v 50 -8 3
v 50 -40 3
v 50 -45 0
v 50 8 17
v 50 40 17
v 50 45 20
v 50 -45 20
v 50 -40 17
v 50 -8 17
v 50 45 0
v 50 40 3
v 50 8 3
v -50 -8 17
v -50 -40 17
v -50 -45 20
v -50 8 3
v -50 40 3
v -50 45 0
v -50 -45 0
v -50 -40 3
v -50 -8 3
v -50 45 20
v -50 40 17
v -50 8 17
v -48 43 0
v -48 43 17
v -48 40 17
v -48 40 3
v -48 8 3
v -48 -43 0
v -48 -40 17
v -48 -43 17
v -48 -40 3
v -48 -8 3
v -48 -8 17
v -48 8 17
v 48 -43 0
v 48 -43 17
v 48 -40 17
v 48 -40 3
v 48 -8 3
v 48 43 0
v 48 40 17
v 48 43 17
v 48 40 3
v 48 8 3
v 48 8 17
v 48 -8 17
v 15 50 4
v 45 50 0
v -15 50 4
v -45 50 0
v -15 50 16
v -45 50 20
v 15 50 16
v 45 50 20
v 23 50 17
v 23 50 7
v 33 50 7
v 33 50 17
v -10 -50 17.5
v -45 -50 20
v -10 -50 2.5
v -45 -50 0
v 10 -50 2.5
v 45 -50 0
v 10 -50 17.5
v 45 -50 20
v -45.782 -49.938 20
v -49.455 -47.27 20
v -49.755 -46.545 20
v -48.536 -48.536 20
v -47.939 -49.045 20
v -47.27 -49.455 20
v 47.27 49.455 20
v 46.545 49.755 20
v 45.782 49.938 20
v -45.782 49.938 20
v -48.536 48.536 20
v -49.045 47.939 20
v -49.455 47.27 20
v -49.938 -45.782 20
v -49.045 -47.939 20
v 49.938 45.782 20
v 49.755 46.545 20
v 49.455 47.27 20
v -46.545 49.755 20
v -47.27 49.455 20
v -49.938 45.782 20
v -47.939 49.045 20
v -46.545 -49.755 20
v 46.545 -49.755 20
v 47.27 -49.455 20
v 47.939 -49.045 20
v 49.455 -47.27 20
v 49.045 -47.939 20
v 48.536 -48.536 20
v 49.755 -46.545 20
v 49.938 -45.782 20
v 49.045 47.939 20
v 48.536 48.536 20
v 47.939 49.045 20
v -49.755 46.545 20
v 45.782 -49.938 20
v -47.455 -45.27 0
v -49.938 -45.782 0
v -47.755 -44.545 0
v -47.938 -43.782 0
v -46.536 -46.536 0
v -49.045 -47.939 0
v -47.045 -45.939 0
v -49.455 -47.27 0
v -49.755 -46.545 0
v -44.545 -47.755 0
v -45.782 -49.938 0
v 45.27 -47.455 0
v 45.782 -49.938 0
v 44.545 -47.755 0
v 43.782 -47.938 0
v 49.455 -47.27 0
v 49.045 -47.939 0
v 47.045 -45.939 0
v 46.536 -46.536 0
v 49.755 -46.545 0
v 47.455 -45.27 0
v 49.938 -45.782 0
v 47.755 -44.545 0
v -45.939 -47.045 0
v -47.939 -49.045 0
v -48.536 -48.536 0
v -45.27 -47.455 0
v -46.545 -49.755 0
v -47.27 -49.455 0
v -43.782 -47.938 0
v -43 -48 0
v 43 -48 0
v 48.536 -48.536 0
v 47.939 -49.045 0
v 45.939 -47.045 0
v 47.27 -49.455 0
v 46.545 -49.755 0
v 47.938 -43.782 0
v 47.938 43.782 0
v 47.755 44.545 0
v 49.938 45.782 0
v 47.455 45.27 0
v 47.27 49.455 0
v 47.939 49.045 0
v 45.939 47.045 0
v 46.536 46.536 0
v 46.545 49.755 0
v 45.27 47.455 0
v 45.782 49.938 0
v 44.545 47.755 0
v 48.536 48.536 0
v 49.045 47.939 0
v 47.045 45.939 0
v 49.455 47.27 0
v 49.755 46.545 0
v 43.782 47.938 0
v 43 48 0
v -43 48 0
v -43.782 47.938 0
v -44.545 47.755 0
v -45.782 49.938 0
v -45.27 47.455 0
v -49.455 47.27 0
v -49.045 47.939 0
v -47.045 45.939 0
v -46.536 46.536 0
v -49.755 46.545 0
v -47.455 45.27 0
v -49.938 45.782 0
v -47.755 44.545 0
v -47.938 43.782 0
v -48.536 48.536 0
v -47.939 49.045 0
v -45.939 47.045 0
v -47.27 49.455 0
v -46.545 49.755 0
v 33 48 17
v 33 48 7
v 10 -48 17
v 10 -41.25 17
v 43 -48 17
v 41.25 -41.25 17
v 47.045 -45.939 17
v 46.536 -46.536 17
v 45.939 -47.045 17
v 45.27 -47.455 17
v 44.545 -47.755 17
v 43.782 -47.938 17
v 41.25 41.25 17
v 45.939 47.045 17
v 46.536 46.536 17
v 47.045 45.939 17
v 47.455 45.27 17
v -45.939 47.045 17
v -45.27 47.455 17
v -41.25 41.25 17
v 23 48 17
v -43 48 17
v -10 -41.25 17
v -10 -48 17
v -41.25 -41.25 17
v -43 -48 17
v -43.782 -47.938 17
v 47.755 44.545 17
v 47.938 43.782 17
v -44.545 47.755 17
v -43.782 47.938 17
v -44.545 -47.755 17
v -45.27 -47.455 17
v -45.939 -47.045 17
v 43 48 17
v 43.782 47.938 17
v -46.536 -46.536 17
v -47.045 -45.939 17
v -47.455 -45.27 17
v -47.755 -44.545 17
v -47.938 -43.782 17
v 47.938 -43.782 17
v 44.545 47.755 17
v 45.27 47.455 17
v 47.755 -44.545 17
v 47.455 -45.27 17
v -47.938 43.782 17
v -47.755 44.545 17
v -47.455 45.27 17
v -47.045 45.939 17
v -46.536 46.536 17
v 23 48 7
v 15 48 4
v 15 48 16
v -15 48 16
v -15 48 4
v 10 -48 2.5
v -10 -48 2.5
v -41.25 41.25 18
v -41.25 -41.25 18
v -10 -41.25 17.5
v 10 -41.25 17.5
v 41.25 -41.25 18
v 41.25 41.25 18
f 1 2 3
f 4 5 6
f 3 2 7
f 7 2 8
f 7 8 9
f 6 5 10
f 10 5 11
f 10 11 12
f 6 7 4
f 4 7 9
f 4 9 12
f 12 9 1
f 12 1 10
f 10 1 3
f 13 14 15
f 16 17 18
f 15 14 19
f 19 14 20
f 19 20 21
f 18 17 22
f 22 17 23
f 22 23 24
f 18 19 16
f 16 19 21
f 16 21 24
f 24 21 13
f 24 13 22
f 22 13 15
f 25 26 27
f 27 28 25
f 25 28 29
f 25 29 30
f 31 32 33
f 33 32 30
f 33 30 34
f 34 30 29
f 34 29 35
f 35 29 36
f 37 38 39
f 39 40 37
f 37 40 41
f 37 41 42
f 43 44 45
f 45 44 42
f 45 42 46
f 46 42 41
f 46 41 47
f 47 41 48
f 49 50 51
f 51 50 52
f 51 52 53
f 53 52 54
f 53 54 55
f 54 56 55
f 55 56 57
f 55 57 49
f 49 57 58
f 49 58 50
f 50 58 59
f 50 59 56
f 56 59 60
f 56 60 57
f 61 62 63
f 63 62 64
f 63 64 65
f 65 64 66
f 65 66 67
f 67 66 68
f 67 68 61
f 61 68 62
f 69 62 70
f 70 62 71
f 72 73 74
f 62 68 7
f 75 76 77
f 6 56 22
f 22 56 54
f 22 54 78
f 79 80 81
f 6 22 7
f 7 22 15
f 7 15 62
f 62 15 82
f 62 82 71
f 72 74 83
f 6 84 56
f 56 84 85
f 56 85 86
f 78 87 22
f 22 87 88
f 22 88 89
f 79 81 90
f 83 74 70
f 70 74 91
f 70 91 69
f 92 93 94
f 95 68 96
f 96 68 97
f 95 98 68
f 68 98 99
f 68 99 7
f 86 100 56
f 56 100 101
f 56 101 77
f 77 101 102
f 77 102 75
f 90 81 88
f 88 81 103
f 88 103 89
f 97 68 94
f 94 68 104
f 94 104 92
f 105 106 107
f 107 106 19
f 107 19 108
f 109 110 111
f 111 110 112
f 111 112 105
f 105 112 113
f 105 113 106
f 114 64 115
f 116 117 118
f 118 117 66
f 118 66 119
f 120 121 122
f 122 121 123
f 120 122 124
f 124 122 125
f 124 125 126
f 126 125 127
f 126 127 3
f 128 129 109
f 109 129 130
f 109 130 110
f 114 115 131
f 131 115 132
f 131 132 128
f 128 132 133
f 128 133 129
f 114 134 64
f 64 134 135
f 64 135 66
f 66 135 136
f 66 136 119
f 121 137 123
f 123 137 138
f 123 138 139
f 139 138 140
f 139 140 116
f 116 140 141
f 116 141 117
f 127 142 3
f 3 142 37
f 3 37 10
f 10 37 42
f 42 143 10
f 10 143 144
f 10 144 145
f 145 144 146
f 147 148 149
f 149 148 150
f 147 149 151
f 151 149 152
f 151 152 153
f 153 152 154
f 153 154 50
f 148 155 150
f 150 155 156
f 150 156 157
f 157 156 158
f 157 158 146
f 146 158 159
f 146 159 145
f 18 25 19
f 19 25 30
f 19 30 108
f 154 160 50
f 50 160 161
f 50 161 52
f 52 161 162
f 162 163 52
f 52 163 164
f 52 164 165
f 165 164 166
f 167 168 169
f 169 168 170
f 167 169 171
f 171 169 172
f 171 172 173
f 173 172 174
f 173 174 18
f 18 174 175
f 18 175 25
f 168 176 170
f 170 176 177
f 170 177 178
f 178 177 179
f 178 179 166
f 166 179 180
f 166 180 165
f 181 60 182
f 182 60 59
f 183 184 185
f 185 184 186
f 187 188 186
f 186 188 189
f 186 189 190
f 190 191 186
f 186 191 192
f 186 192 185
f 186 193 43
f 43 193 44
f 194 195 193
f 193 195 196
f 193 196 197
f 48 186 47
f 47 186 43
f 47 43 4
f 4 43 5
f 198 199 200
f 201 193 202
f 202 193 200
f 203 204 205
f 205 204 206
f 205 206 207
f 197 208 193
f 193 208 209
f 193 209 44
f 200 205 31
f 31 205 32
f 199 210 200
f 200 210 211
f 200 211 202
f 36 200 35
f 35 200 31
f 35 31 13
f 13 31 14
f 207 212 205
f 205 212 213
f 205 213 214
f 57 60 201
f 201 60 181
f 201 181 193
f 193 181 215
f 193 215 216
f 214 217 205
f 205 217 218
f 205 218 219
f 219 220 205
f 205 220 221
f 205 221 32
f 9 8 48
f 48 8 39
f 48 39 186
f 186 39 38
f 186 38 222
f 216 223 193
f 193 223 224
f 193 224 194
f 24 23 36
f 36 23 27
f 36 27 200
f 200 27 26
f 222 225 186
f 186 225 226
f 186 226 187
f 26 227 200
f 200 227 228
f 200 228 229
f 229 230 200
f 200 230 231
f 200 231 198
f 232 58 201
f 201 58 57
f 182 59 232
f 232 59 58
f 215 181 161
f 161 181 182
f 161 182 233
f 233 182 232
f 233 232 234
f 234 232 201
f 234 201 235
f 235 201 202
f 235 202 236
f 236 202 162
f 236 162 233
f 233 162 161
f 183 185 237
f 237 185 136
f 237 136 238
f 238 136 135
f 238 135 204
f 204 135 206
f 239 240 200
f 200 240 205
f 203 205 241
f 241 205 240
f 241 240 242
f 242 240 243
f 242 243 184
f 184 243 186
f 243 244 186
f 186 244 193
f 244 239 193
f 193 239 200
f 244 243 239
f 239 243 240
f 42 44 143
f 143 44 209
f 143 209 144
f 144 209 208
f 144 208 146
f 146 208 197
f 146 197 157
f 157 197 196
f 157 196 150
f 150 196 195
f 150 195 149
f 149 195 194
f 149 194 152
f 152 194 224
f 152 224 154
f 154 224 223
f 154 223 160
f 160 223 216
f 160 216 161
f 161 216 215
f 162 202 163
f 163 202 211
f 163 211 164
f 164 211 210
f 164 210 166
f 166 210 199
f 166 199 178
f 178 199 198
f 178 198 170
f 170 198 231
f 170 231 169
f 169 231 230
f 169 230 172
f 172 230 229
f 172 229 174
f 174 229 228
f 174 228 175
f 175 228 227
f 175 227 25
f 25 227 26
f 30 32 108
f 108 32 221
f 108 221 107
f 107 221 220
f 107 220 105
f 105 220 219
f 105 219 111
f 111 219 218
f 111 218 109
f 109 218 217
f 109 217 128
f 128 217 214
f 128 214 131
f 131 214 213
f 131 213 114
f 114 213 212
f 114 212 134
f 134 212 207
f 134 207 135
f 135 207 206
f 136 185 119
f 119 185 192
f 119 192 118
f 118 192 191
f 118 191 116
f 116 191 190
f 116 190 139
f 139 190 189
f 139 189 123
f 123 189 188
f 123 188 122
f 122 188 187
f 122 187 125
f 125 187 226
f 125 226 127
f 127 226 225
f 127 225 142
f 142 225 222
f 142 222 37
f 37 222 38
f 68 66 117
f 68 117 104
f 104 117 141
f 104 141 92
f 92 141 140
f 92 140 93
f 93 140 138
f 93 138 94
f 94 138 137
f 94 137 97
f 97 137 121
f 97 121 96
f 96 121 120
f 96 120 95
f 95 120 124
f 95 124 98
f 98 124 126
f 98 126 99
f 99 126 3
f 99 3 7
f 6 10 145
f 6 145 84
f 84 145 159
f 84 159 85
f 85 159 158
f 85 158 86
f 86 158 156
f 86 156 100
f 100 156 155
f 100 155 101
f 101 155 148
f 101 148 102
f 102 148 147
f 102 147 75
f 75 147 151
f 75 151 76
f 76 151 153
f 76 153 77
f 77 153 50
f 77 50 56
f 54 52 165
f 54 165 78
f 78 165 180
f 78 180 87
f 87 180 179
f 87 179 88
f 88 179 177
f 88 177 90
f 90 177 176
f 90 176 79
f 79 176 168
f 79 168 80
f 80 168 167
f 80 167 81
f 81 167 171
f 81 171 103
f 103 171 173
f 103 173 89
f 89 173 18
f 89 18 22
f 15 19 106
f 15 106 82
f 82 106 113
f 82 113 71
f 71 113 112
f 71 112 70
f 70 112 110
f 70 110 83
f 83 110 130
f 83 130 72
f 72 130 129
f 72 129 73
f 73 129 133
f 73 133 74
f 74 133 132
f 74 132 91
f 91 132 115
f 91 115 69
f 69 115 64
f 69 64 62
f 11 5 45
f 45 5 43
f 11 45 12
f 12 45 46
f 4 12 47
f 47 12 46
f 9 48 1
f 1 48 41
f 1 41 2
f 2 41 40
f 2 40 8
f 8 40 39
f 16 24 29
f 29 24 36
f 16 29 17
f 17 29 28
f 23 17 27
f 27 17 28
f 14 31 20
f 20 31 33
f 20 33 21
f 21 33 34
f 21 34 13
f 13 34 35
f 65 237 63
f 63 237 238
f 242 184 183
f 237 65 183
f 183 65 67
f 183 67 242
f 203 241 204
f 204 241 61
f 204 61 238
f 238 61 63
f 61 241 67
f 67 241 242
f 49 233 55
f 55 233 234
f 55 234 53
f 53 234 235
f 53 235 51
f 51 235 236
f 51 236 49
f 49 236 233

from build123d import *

# Parameters (mm, degrees)
SKETCH_2_W          = 100
SKETCH_2_H          = 100
EXTRUDE_1_DEPTH     = 20
SKETCH_3_W          = 10
SKETCH_3_H          = 10
CUT_EXTRUDE_1_DEPTH = 12
SKETCH_4_W          = 96
SKETCH_4_H          = 96
CUT_EXTRUDE_2_DEPTH = 17
SKETCH_5_W          = 82.5
SKETCH_5_H          = 82.5
CUT_EXTRUDE_3_DEPTH = 1
FILLET_1_R          = 5
FILLET_2_R          = 5
SKETCH_8_W          = 14
SKETCH_8_H          = 32
CUT_EXTRUDE_4_DEPTH = 114.578166916
SKETCH_9_W          = 20
SKETCH_9_H          = 15
CUT_EXTRUDE_5_DEPTH = 10
SKETCH_10_W         = 30
SKETCH_10_H         = 12
CUT_EXTRUDE_6_DEPTH = 10


with BuildPart() as part:
    # 草图2 → 凸台-拉伸1 (new body)
    with BuildSketch(Plane.XY):
        Rectangle(SKETCH_2_W, SKETCH_2_H)
    extrude(amount=EXTRUDE_1_DEPTH)

    # 草图3 → 切除-拉伸1 (cut)
    with BuildSketch(Plane(origin=(0, 50, 0), x_dir=(1, 0, 0), z_dir=(0, 1, 0))):
        with Locations((28, -12)):
            Rectangle(SKETCH_3_W, SKETCH_3_H)
    extrude(amount=-CUT_EXTRUDE_1_DEPTH, mode=Mode.SUBTRACT)

    # 草图4 → 切除-拉伸2 (cut)
    with BuildSketch(Plane(origin=(0, 0, 0), x_dir=(-1, 0, 0), z_dir=(0, 0, -1))):
        Rectangle(SKETCH_4_W, SKETCH_4_H)
    extrude(amount=-CUT_EXTRUDE_2_DEPTH, mode=Mode.SUBTRACT)

    # 草图5 → 切除-拉伸3 (cut)
    with BuildSketch(Plane(origin=(0, 0, 17), x_dir=(-1, 0, 0), z_dir=(0, 0, -1))):
        Rectangle(SKETCH_5_W, SKETCH_5_H)
    extrude(amount=-CUT_EXTRUDE_3_DEPTH, mode=Mode.SUBTRACT)

    # 圆角1
    fillet_1_edges = [part.edges().sort_by_distance(p)[0] for p in [
        (48, 48, 8.5),
        (-48, 48, 8.5),
        (-48, -48, 8.5),
        (48, -48, 8.5),
    ]]
    fillet(fillet_1_edges, radius=FILLET_1_R)

    # 圆角2
    fillet_2_edges = [part.edges().sort_by_distance(p)[0] for p in [
        (50, -50, 10),
        (-50, -50, 10),
        (-50, 50, 10),
        (50, 50, 10),
    ]]
    fillet(fillet_2_edges, radius=FILLET_2_R)

    # 草图8 → 切除-拉伸4 (cut, through all)
    with BuildSketch(Plane.ZY.offset(50)):
        with Locations((10, -24)):
            Rectangle(SKETCH_8_W, SKETCH_8_H)
        with Locations((10, 24)):
            Rectangle(SKETCH_8_W, SKETCH_8_H)
    extrude(amount=-CUT_EXTRUDE_4_DEPTH, mode=Mode.SUBTRACT)

    # 草图9 → 切除-拉伸5 (cut)
    with BuildSketch(Plane.XZ.offset(50)):
        with Locations((0, 10)):
            Rectangle(SKETCH_9_W, SKETCH_9_H)
    extrude(amount=-CUT_EXTRUDE_5_DEPTH, mode=Mode.SUBTRACT)

    # 草图10 → 切除-拉伸6 (cut)
    with BuildSketch(Plane(origin=(0, 50, 0), x_dir=(1, 0, 0), z_dir=(0, 1, 0))):
        with Locations((0, -10)):
            Rectangle(SKETCH_10_W, SKETCH_10_H)
    extrude(amount=-CUT_EXTRUDE_6_DEPTH, mode=Mode.SUBTRACT)


solid = part.part
